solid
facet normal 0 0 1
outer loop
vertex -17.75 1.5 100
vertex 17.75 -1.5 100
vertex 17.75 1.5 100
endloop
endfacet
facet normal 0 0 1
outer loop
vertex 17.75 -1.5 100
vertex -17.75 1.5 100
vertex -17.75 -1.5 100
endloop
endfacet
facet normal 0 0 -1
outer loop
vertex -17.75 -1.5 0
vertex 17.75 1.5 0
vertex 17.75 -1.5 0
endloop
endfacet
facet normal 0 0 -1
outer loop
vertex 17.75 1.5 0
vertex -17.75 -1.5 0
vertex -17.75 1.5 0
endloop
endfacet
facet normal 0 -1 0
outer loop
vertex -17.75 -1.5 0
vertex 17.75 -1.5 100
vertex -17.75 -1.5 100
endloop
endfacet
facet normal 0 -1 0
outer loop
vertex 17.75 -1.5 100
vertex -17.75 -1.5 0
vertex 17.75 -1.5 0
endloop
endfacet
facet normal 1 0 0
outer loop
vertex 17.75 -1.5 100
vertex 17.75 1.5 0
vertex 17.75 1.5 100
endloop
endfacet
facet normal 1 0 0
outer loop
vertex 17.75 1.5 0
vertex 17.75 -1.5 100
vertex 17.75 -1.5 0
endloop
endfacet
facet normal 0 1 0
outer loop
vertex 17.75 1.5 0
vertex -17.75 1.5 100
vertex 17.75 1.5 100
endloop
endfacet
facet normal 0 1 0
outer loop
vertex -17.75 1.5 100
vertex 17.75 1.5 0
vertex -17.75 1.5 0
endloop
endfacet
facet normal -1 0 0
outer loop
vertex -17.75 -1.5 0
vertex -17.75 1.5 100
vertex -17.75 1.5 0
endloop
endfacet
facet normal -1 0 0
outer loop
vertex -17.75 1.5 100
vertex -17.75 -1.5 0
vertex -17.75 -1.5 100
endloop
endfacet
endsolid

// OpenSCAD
// file: Inlet.scad
$fn = 100;
tiny = 0.01;


/******************************************************
 * dx,dy: Maße, wie bei 'Boden' angegeben.
 *****************************************************/
module inlet_top_down(dx,dy) {
  h1 = 3;  
  dx1 = 5.9;
  dx2 = 4.0; // vier mal Fase an Ecken

  difference() {
     translate([0,0,h1/2]) cube([dx-2*dx1,dy-2*dx1,h1], true); 
     translate([+dx/2-dx1,+dy/2-dx1,h1/2-tiny]) rotate([0,0,45]) cube([dx2,dx2,h1+3*tiny], true);
     translate([+dx/2-dx1,-dy/2+dx1,h1/2-tiny]) rotate([0,0,45]) cube([dx2,dx2,h1+3*tiny], true);
     translate([-dx/2+dx1,+dy/2-dx1,h1/2-tiny]) rotate([0,0,45]) cube([dx2,dx2,h1+3*tiny], true);
     translate([-dx/2+dx1,-dy/2+dx1,h1/2-tiny]) rotate([0,0,45]) cube([dx2,dx2,h1+3*tiny], true);
     }
}


/******************************************************
 * dy: Maß, wie bei 'Boden' angegeben.
 * h:  Maß, wie bei 'Kante' angegeben.
 *****************************************************/
module inlet_front_back(h,dy) {
  h1 = 3;
  dy1 = 12+12.5;
  translate([0,0,h/2]) cube([h1,dy-dy1,h], true);
}


/******************************************************
 * dx: Maß, wie bei 'Boden' angegeben.
 * h:  Maß, wie bei 'Kante' angegeben.
 *****************************************************/
module inlet_left_right(h,dx) {
  h1 = 3;
  dx1 = 12+12.5;
  translate([0,0,h/2]) cube([dx-dx1,h1,h], true);
}
// main file
$fn = 100;

use <Inlet.scad>


inlet_left_right(100,60);
